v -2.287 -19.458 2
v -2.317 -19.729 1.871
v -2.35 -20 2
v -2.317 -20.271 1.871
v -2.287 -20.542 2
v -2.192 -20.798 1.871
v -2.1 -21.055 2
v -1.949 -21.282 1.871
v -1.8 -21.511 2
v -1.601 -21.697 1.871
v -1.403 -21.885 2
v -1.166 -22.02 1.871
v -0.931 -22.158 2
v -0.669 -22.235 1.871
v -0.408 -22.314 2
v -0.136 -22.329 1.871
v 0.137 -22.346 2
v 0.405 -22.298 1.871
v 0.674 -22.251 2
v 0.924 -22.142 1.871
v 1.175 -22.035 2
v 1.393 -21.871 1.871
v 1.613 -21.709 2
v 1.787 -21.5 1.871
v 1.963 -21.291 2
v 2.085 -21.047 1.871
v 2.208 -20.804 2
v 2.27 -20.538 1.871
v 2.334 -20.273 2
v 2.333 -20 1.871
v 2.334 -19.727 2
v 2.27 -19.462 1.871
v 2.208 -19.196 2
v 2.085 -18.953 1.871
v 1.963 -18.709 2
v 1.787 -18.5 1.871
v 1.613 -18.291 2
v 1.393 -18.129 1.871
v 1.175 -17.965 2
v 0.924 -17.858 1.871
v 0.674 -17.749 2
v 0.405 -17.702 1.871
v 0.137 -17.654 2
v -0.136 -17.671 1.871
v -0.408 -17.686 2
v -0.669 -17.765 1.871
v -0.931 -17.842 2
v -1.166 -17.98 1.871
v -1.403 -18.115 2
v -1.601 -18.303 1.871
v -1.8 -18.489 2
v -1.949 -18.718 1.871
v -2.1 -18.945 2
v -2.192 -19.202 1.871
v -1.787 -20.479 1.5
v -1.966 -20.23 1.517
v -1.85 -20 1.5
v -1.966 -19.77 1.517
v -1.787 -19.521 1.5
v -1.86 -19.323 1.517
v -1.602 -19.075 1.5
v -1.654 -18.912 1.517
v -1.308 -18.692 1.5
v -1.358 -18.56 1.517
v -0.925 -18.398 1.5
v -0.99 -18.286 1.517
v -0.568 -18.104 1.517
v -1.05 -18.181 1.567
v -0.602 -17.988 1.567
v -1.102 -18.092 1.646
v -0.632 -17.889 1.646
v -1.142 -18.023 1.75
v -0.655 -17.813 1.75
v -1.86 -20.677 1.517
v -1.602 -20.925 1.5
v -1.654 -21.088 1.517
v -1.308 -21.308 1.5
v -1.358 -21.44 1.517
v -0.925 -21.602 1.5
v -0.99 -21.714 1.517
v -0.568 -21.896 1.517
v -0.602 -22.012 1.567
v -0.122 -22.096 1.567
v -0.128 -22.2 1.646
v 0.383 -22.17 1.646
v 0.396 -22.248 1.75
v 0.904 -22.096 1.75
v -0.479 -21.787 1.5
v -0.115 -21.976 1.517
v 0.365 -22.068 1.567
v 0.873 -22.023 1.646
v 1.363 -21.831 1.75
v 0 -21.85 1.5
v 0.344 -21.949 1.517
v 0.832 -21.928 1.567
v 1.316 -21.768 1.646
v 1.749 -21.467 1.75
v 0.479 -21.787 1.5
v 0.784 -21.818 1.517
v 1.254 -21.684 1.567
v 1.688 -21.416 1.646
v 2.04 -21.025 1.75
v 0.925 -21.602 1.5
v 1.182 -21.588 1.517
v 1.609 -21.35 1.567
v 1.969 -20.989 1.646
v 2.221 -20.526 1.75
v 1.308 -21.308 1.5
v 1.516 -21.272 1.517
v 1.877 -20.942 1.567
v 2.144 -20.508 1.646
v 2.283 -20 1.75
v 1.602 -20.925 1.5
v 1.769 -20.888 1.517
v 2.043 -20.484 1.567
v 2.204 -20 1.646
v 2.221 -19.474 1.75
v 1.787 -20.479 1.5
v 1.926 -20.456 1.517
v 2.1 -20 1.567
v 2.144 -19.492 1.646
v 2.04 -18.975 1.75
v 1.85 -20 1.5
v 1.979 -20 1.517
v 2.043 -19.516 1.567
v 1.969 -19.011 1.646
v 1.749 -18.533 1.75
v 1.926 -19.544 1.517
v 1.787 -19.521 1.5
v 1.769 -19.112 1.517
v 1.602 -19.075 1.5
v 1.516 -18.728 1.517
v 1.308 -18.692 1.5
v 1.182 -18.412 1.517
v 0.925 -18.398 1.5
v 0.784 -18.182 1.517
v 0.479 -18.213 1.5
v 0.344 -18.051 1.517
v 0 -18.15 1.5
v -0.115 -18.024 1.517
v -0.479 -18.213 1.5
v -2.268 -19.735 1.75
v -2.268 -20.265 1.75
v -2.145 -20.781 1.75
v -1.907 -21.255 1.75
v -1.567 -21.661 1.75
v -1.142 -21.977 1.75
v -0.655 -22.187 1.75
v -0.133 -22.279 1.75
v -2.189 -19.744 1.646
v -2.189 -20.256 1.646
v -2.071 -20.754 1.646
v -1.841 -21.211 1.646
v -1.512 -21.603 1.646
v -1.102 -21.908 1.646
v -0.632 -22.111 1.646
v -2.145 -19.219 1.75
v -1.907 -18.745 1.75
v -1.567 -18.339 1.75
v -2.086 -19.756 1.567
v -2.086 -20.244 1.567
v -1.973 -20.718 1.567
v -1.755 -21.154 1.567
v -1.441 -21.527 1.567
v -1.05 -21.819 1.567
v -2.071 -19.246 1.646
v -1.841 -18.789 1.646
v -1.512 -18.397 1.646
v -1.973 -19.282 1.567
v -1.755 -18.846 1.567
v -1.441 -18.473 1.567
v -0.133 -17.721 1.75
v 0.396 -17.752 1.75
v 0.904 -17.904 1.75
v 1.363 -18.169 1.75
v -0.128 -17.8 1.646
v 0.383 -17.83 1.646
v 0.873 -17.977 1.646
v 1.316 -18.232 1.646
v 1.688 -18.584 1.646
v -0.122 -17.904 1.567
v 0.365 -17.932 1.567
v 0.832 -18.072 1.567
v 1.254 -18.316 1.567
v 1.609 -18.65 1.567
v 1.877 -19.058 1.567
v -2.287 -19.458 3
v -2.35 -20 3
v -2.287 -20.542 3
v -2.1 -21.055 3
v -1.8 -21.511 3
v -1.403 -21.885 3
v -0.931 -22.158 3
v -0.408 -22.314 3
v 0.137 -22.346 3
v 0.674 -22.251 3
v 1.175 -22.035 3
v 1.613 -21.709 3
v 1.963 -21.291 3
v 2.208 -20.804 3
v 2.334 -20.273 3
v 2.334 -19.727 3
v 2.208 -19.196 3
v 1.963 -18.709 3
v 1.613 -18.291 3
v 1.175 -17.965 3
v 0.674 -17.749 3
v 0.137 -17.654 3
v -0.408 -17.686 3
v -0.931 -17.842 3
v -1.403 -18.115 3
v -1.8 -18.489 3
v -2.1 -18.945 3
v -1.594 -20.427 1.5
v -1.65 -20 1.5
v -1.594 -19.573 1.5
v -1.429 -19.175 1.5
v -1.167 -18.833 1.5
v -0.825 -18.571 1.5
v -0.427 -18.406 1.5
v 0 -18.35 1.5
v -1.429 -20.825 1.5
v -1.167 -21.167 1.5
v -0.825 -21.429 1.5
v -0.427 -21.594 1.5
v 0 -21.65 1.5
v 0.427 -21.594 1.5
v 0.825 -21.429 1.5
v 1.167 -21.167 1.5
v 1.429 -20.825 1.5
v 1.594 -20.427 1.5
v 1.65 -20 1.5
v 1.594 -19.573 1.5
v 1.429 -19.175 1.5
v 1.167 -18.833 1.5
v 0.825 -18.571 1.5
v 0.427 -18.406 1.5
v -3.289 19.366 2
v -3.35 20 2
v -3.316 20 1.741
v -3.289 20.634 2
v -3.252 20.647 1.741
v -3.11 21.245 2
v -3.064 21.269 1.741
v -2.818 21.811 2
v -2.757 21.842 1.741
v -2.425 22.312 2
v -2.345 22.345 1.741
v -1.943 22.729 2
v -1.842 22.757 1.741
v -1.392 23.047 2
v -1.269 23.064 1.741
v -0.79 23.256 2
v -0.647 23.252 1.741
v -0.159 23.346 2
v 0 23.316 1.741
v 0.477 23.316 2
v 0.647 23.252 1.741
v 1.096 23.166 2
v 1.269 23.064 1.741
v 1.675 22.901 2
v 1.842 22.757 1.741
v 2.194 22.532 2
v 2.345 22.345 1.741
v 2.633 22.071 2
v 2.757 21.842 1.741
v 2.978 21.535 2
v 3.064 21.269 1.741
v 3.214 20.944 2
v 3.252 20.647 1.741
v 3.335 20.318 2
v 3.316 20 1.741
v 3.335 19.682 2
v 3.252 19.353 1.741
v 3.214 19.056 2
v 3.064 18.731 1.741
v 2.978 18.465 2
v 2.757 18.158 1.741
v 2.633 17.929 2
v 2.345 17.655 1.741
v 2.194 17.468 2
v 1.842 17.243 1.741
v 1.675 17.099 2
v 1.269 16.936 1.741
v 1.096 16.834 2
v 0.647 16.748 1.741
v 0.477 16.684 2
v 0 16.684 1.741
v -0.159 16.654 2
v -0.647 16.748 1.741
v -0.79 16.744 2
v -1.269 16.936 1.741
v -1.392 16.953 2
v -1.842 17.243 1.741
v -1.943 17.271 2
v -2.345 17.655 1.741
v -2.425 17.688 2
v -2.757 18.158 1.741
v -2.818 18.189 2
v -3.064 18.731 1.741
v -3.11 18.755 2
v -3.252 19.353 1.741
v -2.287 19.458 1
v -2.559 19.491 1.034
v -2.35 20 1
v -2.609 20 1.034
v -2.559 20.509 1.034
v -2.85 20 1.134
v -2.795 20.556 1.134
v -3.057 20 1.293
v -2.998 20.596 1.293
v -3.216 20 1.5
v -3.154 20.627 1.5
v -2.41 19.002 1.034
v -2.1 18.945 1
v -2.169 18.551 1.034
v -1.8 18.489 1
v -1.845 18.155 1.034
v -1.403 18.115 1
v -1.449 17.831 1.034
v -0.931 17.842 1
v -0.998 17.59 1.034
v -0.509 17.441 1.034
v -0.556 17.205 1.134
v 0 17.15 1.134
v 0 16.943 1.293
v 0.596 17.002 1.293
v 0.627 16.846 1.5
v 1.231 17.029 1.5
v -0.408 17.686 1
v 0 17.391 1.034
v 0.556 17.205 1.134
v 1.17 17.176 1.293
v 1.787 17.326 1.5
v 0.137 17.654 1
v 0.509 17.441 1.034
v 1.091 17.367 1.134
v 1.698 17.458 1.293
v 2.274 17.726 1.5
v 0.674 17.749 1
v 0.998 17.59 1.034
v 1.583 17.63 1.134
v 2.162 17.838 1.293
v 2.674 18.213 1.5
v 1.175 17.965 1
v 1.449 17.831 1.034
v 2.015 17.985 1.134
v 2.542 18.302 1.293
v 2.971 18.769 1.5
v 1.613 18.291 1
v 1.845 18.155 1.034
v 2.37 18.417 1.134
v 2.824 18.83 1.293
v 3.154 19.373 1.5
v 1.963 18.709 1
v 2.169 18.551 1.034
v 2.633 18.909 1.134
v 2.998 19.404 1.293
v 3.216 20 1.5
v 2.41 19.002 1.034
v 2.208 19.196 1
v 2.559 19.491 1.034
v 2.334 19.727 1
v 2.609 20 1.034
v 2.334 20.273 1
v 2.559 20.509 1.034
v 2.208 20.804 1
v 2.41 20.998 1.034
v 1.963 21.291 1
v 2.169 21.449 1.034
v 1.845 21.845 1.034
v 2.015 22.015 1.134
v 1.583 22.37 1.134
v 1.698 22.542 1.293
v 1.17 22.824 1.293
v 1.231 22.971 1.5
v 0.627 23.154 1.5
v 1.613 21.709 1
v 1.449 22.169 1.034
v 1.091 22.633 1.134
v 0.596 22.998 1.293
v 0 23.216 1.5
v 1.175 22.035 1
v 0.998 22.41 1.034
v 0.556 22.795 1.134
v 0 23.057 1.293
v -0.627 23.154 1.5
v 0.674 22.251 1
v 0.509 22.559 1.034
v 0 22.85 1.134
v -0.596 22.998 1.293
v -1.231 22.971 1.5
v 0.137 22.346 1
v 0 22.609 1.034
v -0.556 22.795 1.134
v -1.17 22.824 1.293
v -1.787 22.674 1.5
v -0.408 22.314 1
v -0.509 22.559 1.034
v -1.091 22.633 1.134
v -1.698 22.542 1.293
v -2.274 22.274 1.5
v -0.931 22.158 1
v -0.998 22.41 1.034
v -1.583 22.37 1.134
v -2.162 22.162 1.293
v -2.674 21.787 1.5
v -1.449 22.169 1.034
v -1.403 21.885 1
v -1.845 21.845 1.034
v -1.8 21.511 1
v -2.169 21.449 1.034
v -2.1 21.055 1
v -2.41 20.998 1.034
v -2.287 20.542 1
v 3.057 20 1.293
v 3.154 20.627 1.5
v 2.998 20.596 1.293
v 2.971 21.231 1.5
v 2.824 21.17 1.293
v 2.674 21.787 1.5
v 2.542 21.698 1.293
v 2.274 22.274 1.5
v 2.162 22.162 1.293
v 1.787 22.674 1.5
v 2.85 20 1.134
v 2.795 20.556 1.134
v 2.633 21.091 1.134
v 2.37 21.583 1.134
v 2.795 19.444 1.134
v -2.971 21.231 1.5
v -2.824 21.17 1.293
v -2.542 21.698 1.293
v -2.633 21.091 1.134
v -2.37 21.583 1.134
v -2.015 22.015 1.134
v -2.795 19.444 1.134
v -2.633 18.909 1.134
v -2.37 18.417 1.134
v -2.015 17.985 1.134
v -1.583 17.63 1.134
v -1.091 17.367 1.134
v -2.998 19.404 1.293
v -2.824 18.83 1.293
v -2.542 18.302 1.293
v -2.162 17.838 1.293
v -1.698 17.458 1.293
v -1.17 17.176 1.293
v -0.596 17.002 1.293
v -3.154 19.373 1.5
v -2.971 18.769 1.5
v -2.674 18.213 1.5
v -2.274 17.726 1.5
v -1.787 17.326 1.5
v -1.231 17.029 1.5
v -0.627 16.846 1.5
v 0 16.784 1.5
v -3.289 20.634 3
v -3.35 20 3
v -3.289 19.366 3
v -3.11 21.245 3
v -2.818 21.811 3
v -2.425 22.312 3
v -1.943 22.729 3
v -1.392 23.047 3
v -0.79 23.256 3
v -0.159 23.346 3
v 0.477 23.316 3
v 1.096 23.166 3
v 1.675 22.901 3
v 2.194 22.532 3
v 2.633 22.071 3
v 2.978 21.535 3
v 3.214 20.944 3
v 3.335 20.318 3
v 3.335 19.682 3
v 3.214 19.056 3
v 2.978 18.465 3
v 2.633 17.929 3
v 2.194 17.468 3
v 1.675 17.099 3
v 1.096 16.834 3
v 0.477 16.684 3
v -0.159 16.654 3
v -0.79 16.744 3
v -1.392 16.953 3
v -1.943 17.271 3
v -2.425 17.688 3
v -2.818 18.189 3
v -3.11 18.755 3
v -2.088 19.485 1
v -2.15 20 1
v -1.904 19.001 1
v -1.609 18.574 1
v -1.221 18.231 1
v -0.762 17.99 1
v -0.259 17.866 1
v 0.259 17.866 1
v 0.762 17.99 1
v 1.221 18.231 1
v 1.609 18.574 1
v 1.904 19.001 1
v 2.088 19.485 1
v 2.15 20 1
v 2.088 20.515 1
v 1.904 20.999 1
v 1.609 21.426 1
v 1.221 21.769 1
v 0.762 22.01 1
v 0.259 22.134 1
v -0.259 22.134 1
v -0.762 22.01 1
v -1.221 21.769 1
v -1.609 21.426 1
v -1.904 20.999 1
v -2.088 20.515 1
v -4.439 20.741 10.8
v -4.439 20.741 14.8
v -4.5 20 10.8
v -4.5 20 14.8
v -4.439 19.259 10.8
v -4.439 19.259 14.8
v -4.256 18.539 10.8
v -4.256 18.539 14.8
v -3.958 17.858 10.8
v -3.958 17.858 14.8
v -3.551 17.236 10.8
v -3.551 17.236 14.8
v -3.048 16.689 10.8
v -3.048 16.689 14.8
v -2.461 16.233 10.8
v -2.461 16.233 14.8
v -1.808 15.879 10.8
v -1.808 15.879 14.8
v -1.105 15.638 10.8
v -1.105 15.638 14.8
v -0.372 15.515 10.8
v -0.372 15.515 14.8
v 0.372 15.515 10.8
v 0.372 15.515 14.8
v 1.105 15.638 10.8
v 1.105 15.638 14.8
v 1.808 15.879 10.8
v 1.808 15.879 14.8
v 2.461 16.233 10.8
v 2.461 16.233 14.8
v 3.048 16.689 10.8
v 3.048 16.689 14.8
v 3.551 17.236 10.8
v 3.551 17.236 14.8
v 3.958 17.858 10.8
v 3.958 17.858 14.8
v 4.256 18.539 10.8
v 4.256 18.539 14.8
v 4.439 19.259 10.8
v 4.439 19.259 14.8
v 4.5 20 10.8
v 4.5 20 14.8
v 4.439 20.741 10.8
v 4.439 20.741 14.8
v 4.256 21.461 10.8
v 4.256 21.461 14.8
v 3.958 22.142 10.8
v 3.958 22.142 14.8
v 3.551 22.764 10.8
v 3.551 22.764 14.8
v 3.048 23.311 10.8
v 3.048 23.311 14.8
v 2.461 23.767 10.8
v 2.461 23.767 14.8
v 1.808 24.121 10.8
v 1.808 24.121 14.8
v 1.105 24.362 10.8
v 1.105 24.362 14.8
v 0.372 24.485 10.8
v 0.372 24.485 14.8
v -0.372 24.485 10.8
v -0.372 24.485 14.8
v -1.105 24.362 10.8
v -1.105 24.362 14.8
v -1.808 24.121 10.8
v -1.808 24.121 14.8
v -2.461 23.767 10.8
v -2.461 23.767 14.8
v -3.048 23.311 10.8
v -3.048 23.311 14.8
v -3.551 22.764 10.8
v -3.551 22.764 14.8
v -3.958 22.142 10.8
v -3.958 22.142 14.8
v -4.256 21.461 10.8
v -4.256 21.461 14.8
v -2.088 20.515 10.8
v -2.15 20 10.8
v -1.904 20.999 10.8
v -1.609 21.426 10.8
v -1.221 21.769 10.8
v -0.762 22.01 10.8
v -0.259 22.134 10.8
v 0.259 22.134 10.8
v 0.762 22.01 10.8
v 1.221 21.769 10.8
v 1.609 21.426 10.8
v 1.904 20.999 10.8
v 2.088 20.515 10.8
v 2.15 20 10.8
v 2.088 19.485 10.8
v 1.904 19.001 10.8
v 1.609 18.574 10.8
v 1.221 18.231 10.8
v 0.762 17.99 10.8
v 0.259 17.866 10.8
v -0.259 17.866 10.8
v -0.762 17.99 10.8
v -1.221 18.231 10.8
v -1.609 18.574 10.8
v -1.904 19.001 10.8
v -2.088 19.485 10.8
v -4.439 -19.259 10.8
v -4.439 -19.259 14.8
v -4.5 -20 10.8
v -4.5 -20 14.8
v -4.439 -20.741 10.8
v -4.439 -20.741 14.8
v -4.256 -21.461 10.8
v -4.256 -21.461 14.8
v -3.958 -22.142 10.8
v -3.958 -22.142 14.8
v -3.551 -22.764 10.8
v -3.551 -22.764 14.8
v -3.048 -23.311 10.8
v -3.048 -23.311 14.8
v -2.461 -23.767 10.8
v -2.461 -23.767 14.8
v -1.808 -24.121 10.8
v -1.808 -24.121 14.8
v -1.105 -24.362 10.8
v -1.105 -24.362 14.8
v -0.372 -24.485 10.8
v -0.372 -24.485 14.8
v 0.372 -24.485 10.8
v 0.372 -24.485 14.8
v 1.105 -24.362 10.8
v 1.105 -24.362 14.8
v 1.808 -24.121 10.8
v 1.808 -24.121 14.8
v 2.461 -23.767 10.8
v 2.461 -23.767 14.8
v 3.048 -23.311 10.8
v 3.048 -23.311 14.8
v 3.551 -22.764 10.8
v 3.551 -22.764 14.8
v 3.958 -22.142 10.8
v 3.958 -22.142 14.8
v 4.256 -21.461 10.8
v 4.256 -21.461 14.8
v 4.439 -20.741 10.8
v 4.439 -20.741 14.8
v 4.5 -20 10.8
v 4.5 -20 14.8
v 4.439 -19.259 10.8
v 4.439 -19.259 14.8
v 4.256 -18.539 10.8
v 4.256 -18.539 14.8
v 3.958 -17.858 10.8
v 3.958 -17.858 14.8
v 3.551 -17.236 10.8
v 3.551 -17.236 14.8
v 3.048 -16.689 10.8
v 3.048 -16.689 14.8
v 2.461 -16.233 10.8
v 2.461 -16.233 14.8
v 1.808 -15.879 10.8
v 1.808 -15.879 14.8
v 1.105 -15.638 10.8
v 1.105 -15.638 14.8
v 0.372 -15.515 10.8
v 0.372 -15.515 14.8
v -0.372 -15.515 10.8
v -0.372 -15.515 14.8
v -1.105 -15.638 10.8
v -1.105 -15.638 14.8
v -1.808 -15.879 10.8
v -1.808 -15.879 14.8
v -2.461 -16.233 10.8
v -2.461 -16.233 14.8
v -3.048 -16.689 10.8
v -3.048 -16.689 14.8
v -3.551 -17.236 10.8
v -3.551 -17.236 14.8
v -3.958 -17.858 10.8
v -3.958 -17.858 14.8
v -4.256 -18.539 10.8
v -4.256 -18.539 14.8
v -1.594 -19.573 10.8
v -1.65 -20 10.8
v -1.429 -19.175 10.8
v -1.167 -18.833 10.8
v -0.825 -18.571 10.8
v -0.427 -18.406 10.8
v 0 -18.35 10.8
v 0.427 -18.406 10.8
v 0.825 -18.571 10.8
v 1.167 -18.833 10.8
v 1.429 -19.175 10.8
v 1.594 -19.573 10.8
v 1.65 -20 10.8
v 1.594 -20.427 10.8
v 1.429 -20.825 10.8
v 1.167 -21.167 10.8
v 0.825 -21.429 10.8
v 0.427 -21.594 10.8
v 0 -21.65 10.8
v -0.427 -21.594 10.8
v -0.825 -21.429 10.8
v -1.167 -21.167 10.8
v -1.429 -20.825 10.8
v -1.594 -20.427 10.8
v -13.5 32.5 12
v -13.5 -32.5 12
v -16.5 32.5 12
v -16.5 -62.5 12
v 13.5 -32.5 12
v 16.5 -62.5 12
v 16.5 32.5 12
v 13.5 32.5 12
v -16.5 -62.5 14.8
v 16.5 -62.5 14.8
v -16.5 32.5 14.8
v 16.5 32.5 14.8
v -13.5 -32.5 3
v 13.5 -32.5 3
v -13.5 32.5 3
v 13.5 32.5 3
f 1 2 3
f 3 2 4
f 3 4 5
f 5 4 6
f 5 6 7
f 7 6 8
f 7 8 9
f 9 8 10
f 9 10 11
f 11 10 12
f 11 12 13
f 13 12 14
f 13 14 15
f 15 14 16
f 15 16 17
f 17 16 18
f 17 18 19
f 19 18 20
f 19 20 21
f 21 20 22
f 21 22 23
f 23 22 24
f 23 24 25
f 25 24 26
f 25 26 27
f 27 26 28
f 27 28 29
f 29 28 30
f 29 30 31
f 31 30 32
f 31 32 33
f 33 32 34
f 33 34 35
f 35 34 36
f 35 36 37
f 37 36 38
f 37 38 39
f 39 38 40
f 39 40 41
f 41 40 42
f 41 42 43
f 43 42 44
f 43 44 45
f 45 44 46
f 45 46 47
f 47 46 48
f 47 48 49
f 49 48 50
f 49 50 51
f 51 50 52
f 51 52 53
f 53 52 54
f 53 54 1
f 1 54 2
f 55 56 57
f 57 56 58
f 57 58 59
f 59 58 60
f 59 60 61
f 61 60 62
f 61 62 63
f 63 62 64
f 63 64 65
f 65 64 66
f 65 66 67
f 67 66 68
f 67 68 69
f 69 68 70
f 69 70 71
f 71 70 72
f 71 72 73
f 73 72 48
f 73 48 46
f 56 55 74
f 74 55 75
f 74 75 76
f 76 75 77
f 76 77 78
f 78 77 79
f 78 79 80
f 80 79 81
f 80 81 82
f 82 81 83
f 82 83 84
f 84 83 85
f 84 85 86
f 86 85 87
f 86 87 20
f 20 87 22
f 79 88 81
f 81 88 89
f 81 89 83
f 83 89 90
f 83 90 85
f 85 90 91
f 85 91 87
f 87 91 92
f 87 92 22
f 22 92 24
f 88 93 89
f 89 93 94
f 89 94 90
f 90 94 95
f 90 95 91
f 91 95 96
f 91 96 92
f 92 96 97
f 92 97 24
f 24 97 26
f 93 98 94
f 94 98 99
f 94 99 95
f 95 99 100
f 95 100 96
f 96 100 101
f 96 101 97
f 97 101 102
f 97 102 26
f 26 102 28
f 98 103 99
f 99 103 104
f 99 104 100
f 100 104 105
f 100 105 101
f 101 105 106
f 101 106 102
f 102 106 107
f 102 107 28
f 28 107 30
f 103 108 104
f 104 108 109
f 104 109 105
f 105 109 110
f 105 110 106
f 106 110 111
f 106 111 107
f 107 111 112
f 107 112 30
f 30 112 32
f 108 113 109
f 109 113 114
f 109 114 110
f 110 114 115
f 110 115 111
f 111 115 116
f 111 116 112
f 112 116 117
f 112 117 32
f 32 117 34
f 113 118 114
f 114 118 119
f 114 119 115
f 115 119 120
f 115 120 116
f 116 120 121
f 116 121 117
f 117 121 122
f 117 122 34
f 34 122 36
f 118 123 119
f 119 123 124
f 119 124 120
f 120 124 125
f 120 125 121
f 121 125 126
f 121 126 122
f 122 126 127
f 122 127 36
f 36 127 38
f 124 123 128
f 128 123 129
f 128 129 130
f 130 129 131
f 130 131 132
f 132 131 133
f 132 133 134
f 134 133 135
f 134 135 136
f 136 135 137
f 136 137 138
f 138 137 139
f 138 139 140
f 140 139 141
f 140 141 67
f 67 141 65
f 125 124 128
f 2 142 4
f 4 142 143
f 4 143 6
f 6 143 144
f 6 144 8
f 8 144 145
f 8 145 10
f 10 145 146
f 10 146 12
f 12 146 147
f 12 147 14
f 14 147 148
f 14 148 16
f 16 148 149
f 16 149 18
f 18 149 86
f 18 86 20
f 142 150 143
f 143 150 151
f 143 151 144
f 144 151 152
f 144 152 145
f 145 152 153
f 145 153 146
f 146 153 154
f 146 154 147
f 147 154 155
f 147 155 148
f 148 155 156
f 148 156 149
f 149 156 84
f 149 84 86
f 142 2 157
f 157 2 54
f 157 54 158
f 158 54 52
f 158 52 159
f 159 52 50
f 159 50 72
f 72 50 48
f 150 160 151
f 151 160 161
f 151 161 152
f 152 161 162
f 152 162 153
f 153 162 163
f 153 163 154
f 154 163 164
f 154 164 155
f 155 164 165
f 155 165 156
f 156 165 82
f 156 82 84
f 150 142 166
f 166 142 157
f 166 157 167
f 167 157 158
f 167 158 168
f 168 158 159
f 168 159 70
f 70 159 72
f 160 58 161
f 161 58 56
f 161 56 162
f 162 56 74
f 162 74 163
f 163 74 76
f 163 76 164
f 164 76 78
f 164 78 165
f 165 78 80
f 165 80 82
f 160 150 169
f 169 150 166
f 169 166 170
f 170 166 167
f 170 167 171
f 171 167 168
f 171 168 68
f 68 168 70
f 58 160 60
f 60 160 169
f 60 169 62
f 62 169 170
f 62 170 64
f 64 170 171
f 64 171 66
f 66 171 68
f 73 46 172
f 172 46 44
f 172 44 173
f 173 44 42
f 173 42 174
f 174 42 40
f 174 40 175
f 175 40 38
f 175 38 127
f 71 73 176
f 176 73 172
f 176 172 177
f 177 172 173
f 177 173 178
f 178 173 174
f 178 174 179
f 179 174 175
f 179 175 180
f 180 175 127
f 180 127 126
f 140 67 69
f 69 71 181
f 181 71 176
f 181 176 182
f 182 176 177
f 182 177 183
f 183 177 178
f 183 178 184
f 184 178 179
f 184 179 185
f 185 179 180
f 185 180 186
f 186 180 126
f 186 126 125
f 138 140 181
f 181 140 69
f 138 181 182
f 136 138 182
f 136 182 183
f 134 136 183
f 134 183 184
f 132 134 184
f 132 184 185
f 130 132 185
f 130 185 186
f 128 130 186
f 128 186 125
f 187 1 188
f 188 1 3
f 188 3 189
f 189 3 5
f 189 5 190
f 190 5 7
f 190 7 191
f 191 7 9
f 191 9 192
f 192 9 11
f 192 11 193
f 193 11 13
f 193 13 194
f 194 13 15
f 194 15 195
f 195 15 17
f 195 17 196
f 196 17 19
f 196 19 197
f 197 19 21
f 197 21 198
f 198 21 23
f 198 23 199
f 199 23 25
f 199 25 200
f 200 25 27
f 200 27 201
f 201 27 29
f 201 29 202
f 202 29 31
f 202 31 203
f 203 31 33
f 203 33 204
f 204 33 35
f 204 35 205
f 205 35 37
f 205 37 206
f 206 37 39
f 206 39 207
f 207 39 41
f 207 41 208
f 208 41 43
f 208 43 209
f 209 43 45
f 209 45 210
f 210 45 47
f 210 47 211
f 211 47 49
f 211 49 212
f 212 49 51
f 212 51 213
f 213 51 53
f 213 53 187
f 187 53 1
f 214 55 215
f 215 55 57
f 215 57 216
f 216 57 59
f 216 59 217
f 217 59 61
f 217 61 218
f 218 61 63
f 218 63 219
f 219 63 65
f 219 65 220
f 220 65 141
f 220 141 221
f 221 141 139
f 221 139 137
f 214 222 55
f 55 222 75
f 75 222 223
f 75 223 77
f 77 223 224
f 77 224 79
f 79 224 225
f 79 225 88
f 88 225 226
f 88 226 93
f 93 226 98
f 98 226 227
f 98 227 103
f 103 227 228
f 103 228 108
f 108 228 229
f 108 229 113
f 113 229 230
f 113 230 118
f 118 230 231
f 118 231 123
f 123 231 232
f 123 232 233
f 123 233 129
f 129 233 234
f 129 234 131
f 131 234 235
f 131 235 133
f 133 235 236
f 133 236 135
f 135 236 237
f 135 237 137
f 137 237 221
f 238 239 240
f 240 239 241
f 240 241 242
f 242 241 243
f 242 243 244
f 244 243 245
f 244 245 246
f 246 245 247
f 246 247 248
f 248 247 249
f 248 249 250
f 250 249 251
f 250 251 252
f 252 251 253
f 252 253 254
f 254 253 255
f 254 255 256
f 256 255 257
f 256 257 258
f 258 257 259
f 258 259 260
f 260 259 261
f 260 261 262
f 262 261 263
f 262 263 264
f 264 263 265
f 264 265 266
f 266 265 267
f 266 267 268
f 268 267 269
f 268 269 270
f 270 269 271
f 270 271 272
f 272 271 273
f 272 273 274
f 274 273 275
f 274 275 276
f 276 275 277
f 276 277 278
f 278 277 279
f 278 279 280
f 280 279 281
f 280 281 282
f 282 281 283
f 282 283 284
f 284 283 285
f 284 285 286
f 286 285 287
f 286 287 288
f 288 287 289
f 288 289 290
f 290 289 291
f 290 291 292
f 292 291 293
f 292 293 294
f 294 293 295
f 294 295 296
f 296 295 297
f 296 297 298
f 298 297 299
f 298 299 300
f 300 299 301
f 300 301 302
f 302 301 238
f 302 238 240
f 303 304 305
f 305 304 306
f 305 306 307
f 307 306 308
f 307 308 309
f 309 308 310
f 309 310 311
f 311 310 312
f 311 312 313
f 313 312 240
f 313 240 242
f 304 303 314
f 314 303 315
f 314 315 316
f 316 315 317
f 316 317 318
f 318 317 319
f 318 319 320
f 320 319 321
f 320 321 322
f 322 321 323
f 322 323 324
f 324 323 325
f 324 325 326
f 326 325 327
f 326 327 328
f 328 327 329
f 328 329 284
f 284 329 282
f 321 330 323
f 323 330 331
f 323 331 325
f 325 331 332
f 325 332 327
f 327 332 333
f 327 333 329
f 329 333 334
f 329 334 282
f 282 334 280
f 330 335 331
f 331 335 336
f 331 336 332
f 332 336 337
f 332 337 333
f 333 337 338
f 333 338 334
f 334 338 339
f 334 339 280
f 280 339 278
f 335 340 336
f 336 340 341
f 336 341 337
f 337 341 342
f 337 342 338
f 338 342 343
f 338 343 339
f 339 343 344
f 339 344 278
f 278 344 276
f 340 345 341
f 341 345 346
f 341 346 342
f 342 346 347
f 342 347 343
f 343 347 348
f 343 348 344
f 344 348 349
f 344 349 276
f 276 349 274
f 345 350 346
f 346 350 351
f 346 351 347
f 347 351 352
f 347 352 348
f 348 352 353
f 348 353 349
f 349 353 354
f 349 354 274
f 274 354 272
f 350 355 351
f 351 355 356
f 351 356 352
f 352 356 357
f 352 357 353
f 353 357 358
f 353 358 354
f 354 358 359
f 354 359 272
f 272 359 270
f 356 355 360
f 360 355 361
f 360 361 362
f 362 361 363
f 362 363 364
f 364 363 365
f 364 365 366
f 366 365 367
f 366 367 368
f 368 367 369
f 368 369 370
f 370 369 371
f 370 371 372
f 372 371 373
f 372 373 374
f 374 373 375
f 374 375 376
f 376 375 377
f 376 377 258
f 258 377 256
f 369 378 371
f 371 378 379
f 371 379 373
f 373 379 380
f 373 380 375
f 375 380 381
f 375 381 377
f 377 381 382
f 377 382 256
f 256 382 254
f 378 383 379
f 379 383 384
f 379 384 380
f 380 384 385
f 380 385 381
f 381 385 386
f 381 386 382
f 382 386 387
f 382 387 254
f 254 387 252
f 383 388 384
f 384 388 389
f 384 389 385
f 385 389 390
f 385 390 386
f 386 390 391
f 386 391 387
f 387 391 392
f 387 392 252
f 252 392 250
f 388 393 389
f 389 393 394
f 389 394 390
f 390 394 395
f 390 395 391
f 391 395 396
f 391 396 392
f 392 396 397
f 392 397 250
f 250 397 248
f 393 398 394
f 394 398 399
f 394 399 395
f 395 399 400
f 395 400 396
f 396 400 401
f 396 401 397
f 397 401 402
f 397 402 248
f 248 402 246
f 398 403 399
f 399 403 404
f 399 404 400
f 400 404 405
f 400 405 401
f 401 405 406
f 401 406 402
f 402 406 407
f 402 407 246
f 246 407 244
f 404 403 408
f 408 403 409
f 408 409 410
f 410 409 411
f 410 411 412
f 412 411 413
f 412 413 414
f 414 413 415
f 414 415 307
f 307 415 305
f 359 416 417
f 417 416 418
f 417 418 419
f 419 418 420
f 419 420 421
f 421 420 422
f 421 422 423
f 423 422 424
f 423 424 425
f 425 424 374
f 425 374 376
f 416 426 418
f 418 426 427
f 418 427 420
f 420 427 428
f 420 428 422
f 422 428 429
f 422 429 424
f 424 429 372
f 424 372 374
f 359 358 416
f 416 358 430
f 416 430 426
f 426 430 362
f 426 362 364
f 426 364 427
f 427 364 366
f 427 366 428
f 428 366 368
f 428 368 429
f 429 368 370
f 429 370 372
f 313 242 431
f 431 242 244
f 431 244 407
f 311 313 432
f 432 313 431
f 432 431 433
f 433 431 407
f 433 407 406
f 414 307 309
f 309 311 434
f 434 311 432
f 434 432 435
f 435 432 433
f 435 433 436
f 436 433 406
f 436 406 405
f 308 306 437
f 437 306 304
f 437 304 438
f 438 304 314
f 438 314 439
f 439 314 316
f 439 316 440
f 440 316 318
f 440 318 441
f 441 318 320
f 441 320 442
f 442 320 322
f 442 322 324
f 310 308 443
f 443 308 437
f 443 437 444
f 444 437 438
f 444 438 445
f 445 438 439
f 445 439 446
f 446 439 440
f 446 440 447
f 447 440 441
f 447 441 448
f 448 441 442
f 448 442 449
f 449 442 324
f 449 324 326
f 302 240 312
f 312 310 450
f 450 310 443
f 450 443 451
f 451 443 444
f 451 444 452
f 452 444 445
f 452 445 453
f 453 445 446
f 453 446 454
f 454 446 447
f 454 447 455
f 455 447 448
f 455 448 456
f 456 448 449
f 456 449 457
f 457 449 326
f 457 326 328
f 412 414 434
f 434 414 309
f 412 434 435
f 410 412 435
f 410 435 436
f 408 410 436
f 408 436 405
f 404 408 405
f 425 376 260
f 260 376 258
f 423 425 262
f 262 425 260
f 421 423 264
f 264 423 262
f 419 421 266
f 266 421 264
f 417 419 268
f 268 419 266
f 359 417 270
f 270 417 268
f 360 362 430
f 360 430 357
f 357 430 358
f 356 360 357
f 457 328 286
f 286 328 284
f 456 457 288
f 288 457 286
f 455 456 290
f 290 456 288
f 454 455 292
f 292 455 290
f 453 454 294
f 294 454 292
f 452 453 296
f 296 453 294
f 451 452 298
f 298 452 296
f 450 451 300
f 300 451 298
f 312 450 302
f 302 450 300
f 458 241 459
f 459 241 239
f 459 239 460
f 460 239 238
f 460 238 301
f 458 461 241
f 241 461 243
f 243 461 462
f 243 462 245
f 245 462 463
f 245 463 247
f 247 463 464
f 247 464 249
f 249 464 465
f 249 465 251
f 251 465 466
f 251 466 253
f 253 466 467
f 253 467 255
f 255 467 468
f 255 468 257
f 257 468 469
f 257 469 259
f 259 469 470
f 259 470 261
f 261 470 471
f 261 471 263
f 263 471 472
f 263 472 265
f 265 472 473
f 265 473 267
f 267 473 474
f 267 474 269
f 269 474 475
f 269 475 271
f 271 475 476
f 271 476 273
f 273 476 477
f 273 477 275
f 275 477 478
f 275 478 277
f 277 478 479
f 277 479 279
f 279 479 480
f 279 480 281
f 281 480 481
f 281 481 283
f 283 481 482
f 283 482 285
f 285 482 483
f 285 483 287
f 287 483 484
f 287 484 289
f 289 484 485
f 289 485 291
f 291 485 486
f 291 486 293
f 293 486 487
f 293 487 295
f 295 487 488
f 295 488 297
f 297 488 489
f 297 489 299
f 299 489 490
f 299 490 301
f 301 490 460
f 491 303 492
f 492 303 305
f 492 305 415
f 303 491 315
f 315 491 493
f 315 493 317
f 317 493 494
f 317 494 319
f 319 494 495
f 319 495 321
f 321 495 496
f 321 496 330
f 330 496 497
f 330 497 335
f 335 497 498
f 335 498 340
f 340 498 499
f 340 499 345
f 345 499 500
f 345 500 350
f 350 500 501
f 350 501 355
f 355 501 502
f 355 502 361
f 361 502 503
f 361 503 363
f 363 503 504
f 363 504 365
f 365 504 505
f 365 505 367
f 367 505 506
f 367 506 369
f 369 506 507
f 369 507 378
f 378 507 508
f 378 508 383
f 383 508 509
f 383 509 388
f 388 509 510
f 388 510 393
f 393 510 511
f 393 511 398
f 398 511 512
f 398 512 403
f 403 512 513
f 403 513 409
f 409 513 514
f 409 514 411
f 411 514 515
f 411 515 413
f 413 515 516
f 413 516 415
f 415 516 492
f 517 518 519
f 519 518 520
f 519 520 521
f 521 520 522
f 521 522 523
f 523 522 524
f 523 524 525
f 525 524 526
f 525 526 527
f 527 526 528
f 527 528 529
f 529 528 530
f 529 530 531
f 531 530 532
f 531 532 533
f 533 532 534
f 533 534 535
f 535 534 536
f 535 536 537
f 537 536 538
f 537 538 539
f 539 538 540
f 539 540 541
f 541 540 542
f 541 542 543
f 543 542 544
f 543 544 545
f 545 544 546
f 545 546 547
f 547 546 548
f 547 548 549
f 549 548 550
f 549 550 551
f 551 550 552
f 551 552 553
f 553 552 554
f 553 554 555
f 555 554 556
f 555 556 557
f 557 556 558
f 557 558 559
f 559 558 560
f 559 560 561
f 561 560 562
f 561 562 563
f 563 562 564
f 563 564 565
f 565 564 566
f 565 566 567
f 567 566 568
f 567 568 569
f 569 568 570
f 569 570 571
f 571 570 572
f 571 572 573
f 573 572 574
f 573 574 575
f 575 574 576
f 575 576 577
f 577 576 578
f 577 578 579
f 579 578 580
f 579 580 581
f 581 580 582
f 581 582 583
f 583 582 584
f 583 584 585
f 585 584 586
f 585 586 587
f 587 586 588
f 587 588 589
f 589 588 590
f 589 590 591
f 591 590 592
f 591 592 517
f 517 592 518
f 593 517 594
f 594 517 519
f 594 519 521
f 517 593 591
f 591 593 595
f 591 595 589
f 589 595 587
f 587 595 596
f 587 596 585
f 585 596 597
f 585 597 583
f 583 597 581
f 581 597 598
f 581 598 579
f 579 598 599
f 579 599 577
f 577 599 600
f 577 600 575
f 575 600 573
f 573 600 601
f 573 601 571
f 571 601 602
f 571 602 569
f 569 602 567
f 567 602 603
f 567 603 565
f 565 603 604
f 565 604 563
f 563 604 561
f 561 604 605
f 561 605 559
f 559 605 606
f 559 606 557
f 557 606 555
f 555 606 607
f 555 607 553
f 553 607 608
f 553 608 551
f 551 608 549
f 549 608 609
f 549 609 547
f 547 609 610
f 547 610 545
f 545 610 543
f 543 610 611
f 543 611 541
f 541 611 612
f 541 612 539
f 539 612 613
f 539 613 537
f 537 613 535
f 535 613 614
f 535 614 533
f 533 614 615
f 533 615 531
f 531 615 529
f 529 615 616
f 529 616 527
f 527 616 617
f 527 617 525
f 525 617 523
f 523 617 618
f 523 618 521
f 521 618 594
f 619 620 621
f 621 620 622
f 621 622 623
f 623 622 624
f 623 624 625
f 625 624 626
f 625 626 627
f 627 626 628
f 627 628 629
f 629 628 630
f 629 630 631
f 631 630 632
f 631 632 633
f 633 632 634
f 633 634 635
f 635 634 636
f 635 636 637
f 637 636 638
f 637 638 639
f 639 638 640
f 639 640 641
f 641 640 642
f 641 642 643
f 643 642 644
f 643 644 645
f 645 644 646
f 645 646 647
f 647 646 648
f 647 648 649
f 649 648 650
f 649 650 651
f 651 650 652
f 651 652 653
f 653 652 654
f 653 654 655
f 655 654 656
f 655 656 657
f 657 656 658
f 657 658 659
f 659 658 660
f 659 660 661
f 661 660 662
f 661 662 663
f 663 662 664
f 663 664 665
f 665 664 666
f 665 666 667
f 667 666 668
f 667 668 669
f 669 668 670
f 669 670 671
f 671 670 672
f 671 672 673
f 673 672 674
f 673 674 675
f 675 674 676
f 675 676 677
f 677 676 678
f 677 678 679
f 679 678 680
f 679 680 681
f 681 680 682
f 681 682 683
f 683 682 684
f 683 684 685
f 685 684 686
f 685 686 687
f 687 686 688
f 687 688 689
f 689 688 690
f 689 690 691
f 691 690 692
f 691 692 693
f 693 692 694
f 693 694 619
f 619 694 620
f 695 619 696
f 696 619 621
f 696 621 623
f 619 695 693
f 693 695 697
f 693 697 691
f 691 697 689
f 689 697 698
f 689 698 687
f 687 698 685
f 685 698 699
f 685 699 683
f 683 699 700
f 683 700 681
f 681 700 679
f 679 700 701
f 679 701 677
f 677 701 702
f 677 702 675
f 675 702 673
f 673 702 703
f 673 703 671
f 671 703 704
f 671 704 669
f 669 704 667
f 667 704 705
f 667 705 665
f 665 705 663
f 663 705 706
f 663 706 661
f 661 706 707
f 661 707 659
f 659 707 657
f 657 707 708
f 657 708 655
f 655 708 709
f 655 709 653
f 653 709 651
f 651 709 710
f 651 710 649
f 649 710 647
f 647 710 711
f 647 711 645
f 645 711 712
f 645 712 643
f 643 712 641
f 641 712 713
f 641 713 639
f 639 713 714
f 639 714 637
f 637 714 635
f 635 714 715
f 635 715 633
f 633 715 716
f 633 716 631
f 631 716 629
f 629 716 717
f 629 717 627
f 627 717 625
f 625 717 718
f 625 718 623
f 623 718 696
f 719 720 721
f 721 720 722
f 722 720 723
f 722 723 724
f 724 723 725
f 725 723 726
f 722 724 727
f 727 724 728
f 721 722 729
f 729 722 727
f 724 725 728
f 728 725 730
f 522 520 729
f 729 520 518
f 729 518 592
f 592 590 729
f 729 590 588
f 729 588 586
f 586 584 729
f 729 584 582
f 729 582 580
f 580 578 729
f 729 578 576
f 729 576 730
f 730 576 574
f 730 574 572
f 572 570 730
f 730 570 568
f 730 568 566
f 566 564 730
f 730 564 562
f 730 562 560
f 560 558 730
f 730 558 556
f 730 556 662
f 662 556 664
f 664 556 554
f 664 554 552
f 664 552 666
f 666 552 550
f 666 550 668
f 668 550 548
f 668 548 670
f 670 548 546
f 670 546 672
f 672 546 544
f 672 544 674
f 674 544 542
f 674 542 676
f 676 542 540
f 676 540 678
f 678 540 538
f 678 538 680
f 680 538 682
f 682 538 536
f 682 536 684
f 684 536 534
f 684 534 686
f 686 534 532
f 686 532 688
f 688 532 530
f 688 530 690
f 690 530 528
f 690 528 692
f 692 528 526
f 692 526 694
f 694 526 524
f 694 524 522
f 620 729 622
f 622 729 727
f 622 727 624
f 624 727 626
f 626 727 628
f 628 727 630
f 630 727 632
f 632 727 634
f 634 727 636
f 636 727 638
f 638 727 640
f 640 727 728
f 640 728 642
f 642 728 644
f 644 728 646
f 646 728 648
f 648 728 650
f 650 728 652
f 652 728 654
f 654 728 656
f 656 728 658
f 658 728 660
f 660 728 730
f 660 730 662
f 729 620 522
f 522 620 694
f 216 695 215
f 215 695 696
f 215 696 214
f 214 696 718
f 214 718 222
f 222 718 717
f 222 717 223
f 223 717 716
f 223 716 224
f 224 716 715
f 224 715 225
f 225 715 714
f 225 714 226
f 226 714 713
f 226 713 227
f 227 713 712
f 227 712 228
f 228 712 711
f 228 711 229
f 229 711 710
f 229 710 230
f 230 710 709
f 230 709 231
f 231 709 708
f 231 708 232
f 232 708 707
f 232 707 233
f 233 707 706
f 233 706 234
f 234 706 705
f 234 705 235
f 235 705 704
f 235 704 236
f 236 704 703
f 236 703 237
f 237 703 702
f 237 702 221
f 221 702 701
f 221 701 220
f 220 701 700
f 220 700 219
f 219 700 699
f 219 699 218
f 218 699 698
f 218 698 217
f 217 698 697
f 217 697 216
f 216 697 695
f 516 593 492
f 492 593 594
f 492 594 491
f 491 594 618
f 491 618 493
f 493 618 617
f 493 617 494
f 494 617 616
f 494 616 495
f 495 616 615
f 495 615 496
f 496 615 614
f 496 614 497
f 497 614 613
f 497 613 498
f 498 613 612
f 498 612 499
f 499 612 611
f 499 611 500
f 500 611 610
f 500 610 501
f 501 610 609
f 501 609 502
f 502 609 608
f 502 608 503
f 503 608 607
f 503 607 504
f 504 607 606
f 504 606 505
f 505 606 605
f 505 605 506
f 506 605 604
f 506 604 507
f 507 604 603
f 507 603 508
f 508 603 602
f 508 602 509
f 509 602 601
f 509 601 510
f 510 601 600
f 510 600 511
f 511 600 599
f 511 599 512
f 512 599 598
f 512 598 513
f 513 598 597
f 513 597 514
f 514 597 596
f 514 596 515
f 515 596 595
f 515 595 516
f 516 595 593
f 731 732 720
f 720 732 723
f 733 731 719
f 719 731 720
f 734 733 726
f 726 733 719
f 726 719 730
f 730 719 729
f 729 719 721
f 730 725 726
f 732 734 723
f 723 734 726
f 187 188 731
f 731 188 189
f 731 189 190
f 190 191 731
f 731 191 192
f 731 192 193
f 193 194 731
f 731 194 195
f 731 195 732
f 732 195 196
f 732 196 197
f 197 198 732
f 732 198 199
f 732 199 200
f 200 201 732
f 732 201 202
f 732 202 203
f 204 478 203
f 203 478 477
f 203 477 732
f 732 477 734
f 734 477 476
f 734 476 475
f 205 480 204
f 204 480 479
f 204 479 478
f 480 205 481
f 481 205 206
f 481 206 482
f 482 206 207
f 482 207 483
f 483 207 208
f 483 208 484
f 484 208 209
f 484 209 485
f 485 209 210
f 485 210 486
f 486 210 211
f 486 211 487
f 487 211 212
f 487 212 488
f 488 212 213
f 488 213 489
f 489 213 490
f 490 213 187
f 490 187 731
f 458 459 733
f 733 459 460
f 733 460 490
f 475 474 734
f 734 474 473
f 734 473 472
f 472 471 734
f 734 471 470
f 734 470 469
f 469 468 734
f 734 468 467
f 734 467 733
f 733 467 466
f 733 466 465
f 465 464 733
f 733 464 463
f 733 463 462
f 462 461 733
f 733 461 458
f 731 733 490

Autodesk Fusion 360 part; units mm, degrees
sketch "Sketch1" plane through (0, 0, 0) normal (0, 0, 1) x (1, 0, 0)
  line L0 (-30.5, 32.5) -> (30.5, 32.5)
  line L1 (32.5, 30.5) -> (32.5, -30.5)
  line L2 (30.5, -32.5) -> (-30.5, -32.5)
  line L3 (-32.5, -30.5) -> (-32.5, 30.5)
  line L4 (-32.5, 32.5) -> (32.5, -32.5) construction
  line L5 (32.5, 32.5) -> (-32.5, -32.5) construction
  circle A0 centre (0, 0) radius 2.5
  circle A1 centre (0, 10) radius 2.5
  circle A2 centre (0, 20) radius 3.5
  circle A3 centre (0, -10) radius 2.5
  circle A4 centre (0, -20) radius 2.5
  circle A5 centre (10, -20) radius 2.5
  circle A6 centre (10, 0) radius 2.5
  circle A7 centre (10, 20) radius 2.5
  circle A8 centre (20, -20) radius 2.5
  circle A9 centre (20, 20) radius 2.5
  line L6 (17.5, 10) -> (17.5, -10)
  line L7 (22.5, -10) -> (22.5, 10)
  arc A10 (22.5, 10) -> (17.5, 10) centre (20, 10) ccw
  arc A11 (17.5, -10) -> (22.5, -10) centre (20, -10) ccw
  line L8 (29, 3) -> (29, -3)
  line L9 (26, -3) -> (26, 3)
  arc A12 (29, 3) -> (26, 3) centre (27.5, 3) ccw
  arc A13 (26, -3) -> (29, -3) centre (27.5, -3) ccw
  arc A14 (29, 23) -> (26, 23) centre (27.5, 23) ccw
  line L10 (29, 23) -> (29, 17)
  arc A15 (26, 17) -> (29, 17) centre (27.5, 17) ccw
  line L11 (26, 17) -> (26, 23)
  arc A16 (26, -23) -> (29, -23) centre (27.5, -23) ccw
  line L12 (29, -17) -> (29, -23)
  line L13 (26, -23) -> (26, -17)
  arc A17 (29, -17) -> (26, -17) centre (27.5, -17) ccw
  circle A18 centre (-10, -20) radius 2.5
  line L14 (-26, -3) -> (-26, 3)
  line L15 (-26, 17) -> (-26, 23)
  arc A19 (-29, -3) -> (-26, -3) centre (-27.5, -3) ccw
  circle A20 centre (-10, 20) radius 2.5
  circle A21 centre (-20, -20) radius 2.5
  line L16 (-29, 23) -> (-29, 17)
  circle A22 centre (-20, 20) radius 2.5
  arc A23 (-17.5, 10) -> (-22.5, 10) centre (-20, 10) ccw
  arc A24 (-26, 23) -> (-29, 23) centre (-27.5, 23) ccw
  arc A25 (-22.5, -10) -> (-17.5, -10) centre (-20, -10) ccw
  arc A26 (-26, 3) -> (-29, 3) centre (-27.5, 3) ccw
  line L17 (-17.5, 10) -> (-17.5, -10)
  line L18 (-29, 3) -> (-29, -3)
  circle A27 centre (-10, 0) radius 2.5
  arc A28 (-29, -23) -> (-26, -23) centre (-27.5, -23) ccw
  line L19 (-22.5, -10) -> (-22.5, 10)
  line L20 (-26, -23) -> (-26, -17)
  arc A29 (-26, -17) -> (-29, -17) centre (-27.5, -17) ccw
  arc A30 (-29, 17) -> (-26, 17) centre (-27.5, 17) ccw
  line L21 (-29, -17) -> (-29, -23)
  arc A31 (-30.5, 32.5) -> (-32.5, 30.5) centre (-30.5, 30.5) ccw
  arc A32 (32.5, 30.5) -> (30.5, 32.5) centre (30.5, 30.5) ccw
  arc A33 (30.5, -32.5) -> (32.5, -30.5) centre (30.5, -30.5) ccw
  arc A34 (-32.5, -30.5) -> (-30.5, -32.5) centre (-30.5, -30.5) ccw
  circle A35 centre (0, 20) radius 1.65
  circle A36 centre (0, 20) radius 3.35
  circle A37 centre (0, -20) radius 1.65
  circle A38 centre (0, -20) radius 2.35
  dimension "d1" = 65
  dimension "d2" = 65
  dimension "d3" = 5
  dimension "d8" = 7
  dimension "d11" = 0
  dimension "d12" = -10
  dimension "d13" = 5
  dimension "d14" = 5
  dimension "d16" = 5
  dimension "d17" = 3
  dimension "d19" = 3
  dimension "d20" = 3
  dimension "d21" = 3
  dimension "d22" = 3
  dimension "d23" = 3
  dimension "d24" = 2
  dimension "d25" = 2
  dimension "d26" = 2
  dimension "d27" = 2
  dimension "d42" = 3.3
  dimension "d43" = 6.7
  dimension "d44" = 3.3
  dimension "d45" = 4.7
ref_plane "WorkPlane1" through (0, 0, 3) normal (0, 0, 1) x (1, 0, 0)
sketch "Sketch3" plane through (0, 0, 3) normal (0, 0, 1) x (1, 0, 0)
  line L0 (13.5, 32.5) -> (-13.5, 32.5)
  line L1 (-13.5, 32.5) -> (-13.5, -32.5)
  line L2 (-13.5, -32.5) -> (13.5, -32.5)
  line L3 (13.5, -32.5) -> (13.5, 32.5)
  line L4 (13.5, 32.5) -> (-13.5, -32.5) construction
  line L5 (-13.5, 32.5) -> (13.5, -32.5) construction
  circle A0 centre (0, 20) radius 3.35
  circle A1 centre (0, -20) radius 2.35
  circle A2 centre (0, 20) radius 2.15
  circle A3 centre (0, -20) radius 1.65
  dimension "d33" = 27
  dimension "d34" = 65
  dimension "d67" = 6.7
  dimension "d68" = 4.7
  dimension "d69" = 4.3
  dimension "d70" = 3.3
ref_plane "WorkPlane2" through (0, 0, 12) normal (0, 0, 1) x (1, 0, 0)
sketch "Sketch4" plane through (0, 0, 12) normal (0, 0, 1) x (1, 0, 0)
  line L0 (16.5, 32.5) -> (-16.5, 32.5)
  line L1 (-16.5, 32.5) -> (-16.5, -32.5)
  line L2 (16.5, -32.5) -> (16.5, 32.5)
  line L3 (-16.5, -32.5) -> (-16.5, -62.5)
  line L4 (-16.5, -62.5) -> (16.5, -62.5)
  line L5 (16.5, -62.5) -> (16.5, -32.5)
  circle A0 centre (0, 20) radius 2.15
  circle A1 centre (0, -20) radius 1.65
  dimension "d38" = 30
  dimension "d39" = 33
ref_plane "WorkPlane3" through (0, 0, 14.8) normal (0, 0, 1) x (1, 0, 0)
sketch "Sketch5" plane through (0, 0, 14.8) normal (0, 0, 1) x (1, 0, 0)
  circle A0 centre (0, 20) radius 4.5
  circle A1 centre (0, -20) radius 4.5
  dimension "d61" = 9
  dimension "d62" = 9
extrude "Extrude8" add sketch "Sketch3" along normal blind 9 contours L0 L1 L2 L3 | A0 | A1 makes body 1
extrude "Extrude9" add sketch "Sketch4" along normal blind 2.8 bodies 1
extrude "Extrude10" cut sketch "Sketch5" against normal blind 4 bodies 1
extrude "Extrude11" add sketch "Sketch3" against normal blind 2 contours A0 bodies 1
fillet "Fillet3" radius 1 1 edges at (-3.1233, 21.2114, 1) on bodies 1
extrude "Extrude12" add sketch "Sketch3" against normal blind 1.5 contours A1 bodies 1
fillet "Fillet4" radius 0.5 1 edges at (-2.191, -19.1502, 1.5) on bodies 1
extrude "Extrude1" add sketch "Sketch1" along normal blind 3 separate body contours L0 L1 L2 L3 A31 A32 A33 A34 makes body 2
hidden bodies 2
equation "d43 = 7 mm - 0.3 mm"
equation "d45 = 5 mm - 0.3 mm"
equation "d67 = 7 mm - 0.3 mm"
equation "d68 = 5 mm - 0.3 mm"
